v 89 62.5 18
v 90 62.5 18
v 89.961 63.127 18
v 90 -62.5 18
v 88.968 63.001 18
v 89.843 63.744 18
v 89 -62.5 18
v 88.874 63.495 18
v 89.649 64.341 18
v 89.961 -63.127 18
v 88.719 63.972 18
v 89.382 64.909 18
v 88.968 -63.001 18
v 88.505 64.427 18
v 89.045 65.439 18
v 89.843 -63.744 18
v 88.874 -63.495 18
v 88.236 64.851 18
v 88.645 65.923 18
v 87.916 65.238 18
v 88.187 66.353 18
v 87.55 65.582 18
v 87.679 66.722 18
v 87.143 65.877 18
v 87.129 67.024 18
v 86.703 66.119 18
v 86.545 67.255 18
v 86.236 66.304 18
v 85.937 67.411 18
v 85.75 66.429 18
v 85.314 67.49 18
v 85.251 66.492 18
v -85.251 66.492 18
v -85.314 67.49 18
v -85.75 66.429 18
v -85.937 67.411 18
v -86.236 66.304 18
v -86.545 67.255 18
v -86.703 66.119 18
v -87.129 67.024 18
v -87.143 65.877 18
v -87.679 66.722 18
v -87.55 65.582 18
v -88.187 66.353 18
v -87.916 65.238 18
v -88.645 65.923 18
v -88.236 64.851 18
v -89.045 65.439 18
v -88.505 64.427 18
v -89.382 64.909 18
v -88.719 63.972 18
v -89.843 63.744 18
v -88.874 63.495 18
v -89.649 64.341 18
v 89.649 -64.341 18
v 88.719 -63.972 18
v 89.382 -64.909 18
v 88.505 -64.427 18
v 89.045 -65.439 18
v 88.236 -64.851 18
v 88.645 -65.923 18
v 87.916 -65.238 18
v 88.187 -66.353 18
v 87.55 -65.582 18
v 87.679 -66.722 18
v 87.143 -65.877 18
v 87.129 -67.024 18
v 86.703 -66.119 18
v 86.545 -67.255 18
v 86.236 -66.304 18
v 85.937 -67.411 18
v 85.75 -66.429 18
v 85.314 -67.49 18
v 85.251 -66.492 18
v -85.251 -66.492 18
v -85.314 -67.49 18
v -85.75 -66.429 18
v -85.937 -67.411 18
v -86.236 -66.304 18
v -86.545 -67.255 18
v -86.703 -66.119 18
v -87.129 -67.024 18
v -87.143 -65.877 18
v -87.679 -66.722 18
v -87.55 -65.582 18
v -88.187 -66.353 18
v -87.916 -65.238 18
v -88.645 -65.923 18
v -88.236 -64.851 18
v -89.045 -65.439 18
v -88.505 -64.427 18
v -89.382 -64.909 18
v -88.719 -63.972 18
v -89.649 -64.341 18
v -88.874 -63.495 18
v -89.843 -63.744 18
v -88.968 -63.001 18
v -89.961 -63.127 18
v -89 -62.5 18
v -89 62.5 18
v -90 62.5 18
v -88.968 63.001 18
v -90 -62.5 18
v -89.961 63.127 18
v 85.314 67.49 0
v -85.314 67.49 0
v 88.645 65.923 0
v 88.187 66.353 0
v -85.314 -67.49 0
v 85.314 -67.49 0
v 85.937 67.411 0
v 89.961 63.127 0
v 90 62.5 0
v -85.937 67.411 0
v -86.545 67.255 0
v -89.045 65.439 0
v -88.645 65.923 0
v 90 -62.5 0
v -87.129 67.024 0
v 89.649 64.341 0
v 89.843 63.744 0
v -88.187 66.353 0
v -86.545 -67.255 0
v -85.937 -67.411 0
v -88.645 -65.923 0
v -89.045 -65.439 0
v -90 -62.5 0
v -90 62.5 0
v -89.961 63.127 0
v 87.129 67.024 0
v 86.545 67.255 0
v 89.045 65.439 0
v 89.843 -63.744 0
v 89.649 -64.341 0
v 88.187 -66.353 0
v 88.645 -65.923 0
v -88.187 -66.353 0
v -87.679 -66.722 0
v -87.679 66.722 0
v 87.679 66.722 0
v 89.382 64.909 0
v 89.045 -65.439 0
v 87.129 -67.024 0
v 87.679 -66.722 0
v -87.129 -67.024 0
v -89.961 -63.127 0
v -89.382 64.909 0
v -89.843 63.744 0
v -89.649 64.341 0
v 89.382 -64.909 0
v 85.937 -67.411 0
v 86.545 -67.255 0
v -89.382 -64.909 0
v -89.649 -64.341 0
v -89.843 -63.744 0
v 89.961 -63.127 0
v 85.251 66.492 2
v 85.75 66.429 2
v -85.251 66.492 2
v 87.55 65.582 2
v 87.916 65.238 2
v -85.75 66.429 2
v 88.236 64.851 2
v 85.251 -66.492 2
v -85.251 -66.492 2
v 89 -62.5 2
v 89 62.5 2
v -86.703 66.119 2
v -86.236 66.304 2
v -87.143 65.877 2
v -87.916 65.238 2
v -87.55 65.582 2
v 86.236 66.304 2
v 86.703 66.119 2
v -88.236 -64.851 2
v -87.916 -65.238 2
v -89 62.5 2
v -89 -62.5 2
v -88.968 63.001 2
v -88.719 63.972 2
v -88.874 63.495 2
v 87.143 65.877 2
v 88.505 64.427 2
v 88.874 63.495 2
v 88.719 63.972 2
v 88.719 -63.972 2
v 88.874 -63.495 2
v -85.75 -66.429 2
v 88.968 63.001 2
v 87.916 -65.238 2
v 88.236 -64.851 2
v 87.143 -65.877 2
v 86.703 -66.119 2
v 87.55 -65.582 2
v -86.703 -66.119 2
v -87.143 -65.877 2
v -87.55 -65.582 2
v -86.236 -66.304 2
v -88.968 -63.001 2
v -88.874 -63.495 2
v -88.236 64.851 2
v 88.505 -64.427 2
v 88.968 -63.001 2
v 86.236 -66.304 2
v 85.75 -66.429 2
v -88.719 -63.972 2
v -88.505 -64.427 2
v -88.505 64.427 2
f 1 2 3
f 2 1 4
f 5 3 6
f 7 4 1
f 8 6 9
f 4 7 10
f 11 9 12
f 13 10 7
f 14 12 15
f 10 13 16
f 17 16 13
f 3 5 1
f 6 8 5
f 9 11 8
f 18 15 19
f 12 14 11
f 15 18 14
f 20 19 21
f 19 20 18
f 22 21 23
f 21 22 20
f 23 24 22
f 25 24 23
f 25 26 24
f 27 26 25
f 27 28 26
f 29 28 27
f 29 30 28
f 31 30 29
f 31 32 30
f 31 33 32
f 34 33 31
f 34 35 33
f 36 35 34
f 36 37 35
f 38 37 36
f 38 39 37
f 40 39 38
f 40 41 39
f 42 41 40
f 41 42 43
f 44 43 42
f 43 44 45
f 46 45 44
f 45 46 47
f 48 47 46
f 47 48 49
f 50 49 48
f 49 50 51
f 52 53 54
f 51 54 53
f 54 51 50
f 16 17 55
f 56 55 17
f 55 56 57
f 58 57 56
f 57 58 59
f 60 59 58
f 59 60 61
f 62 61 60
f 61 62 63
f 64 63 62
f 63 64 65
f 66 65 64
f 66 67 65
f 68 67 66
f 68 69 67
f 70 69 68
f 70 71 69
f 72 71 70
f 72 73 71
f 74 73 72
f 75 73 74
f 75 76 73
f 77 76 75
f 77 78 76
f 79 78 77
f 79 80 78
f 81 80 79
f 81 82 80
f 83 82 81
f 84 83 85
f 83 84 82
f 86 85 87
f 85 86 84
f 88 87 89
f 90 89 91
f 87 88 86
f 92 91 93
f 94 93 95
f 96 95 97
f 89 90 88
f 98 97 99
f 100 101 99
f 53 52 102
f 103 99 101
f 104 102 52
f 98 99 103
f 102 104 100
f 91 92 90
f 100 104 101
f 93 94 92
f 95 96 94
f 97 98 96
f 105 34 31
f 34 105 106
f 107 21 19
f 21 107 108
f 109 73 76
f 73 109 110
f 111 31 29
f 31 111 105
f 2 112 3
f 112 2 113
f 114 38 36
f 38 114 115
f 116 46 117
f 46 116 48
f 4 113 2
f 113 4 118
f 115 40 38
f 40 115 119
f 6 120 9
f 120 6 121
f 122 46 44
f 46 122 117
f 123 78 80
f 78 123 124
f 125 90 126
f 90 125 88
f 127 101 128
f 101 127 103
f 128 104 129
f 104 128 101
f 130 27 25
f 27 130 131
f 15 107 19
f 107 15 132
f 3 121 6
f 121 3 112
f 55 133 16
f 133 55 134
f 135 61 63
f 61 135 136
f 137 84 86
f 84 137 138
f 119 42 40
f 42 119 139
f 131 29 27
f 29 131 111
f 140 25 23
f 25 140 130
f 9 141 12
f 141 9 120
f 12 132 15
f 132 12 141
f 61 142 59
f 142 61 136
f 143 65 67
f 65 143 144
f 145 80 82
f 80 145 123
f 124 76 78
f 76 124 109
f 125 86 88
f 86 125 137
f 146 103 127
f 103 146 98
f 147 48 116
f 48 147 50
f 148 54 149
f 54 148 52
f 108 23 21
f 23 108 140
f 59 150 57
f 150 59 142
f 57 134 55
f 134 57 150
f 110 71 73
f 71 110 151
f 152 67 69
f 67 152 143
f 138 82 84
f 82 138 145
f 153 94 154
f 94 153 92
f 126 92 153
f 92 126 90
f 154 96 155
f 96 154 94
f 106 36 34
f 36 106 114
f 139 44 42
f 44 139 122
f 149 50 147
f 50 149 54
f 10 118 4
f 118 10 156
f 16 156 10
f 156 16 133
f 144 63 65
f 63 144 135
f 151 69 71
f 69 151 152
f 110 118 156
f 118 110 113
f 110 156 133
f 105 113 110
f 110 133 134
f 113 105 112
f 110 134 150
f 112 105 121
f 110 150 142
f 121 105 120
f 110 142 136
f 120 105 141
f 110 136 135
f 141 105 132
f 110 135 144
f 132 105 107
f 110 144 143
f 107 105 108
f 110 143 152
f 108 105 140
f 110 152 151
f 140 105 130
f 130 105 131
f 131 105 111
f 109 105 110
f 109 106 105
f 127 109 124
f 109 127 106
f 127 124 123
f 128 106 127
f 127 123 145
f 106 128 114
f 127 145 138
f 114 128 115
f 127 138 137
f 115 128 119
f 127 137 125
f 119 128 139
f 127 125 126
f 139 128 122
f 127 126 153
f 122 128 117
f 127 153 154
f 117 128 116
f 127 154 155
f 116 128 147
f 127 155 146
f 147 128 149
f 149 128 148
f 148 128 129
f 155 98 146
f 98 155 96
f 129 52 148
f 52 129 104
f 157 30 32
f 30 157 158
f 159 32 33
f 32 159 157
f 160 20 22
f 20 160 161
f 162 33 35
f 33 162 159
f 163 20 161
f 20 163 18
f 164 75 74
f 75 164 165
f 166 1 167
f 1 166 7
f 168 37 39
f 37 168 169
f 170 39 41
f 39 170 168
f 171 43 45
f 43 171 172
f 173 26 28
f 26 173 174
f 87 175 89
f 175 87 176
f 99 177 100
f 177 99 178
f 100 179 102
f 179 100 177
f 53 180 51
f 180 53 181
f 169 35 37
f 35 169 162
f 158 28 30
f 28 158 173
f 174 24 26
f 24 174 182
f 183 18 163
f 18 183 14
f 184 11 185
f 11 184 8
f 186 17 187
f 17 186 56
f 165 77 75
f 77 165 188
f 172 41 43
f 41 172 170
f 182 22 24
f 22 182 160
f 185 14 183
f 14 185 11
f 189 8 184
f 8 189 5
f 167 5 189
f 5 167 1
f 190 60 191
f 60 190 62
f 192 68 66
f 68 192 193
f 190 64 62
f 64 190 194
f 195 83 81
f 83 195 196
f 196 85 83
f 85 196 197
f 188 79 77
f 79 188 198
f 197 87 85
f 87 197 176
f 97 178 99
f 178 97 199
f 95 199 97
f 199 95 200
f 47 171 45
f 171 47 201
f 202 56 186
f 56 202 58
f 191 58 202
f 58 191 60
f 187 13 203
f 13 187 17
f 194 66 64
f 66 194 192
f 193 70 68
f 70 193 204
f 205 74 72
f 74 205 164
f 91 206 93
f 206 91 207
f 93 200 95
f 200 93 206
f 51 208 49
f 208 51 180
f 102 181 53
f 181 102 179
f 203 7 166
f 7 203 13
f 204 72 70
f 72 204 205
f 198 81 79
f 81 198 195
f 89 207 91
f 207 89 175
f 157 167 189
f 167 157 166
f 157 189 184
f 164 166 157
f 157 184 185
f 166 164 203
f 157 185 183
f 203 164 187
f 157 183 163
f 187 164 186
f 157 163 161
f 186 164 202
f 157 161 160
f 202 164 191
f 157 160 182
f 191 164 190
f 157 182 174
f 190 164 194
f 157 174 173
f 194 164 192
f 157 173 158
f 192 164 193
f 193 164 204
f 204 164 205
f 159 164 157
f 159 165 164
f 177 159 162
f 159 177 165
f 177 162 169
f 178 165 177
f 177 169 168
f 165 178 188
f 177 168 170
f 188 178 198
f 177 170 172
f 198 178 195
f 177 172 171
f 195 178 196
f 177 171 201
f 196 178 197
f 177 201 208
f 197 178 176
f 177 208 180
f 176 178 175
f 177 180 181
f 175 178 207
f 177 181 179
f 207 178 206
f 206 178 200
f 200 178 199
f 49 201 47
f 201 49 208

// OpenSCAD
$fn = 50;


difference() {
	union() {
		hull() {
			translate(v = [-85.0000000000, 62.5000000000, 0]) {
				cylinder(h = 18, r = 5);
			}
			translate(v = [85.0000000000, 62.5000000000, 0]) {
				cylinder(h = 18, r = 5);
			}
			translate(v = [-85.0000000000, -62.5000000000, 0]) {
				cylinder(h = 18, r = 5);
			}
			translate(v = [85.0000000000, -62.5000000000, 0]) {
				cylinder(h = 18, r = 5);
			}
		}
	}
	union() {
		translate(v = [0, 0, 2]) {
			hull() {
				translate(v = [-85.0000000000, 62.5000000000, 0]) {
					cylinder(h = 16, r = 4);
				}
				translate(v = [85.0000000000, 62.5000000000, 0]) {
					cylinder(h = 16, r = 4);
				}
				translate(v = [-85.0000000000, -62.5000000000, 0]) {
					cylinder(h = 16, r = 4);
				}
				translate(v = [85.0000000000, -62.5000000000, 0]) {
					cylinder(h = 16, r = 4);
				}
			}
		}
	}
}
